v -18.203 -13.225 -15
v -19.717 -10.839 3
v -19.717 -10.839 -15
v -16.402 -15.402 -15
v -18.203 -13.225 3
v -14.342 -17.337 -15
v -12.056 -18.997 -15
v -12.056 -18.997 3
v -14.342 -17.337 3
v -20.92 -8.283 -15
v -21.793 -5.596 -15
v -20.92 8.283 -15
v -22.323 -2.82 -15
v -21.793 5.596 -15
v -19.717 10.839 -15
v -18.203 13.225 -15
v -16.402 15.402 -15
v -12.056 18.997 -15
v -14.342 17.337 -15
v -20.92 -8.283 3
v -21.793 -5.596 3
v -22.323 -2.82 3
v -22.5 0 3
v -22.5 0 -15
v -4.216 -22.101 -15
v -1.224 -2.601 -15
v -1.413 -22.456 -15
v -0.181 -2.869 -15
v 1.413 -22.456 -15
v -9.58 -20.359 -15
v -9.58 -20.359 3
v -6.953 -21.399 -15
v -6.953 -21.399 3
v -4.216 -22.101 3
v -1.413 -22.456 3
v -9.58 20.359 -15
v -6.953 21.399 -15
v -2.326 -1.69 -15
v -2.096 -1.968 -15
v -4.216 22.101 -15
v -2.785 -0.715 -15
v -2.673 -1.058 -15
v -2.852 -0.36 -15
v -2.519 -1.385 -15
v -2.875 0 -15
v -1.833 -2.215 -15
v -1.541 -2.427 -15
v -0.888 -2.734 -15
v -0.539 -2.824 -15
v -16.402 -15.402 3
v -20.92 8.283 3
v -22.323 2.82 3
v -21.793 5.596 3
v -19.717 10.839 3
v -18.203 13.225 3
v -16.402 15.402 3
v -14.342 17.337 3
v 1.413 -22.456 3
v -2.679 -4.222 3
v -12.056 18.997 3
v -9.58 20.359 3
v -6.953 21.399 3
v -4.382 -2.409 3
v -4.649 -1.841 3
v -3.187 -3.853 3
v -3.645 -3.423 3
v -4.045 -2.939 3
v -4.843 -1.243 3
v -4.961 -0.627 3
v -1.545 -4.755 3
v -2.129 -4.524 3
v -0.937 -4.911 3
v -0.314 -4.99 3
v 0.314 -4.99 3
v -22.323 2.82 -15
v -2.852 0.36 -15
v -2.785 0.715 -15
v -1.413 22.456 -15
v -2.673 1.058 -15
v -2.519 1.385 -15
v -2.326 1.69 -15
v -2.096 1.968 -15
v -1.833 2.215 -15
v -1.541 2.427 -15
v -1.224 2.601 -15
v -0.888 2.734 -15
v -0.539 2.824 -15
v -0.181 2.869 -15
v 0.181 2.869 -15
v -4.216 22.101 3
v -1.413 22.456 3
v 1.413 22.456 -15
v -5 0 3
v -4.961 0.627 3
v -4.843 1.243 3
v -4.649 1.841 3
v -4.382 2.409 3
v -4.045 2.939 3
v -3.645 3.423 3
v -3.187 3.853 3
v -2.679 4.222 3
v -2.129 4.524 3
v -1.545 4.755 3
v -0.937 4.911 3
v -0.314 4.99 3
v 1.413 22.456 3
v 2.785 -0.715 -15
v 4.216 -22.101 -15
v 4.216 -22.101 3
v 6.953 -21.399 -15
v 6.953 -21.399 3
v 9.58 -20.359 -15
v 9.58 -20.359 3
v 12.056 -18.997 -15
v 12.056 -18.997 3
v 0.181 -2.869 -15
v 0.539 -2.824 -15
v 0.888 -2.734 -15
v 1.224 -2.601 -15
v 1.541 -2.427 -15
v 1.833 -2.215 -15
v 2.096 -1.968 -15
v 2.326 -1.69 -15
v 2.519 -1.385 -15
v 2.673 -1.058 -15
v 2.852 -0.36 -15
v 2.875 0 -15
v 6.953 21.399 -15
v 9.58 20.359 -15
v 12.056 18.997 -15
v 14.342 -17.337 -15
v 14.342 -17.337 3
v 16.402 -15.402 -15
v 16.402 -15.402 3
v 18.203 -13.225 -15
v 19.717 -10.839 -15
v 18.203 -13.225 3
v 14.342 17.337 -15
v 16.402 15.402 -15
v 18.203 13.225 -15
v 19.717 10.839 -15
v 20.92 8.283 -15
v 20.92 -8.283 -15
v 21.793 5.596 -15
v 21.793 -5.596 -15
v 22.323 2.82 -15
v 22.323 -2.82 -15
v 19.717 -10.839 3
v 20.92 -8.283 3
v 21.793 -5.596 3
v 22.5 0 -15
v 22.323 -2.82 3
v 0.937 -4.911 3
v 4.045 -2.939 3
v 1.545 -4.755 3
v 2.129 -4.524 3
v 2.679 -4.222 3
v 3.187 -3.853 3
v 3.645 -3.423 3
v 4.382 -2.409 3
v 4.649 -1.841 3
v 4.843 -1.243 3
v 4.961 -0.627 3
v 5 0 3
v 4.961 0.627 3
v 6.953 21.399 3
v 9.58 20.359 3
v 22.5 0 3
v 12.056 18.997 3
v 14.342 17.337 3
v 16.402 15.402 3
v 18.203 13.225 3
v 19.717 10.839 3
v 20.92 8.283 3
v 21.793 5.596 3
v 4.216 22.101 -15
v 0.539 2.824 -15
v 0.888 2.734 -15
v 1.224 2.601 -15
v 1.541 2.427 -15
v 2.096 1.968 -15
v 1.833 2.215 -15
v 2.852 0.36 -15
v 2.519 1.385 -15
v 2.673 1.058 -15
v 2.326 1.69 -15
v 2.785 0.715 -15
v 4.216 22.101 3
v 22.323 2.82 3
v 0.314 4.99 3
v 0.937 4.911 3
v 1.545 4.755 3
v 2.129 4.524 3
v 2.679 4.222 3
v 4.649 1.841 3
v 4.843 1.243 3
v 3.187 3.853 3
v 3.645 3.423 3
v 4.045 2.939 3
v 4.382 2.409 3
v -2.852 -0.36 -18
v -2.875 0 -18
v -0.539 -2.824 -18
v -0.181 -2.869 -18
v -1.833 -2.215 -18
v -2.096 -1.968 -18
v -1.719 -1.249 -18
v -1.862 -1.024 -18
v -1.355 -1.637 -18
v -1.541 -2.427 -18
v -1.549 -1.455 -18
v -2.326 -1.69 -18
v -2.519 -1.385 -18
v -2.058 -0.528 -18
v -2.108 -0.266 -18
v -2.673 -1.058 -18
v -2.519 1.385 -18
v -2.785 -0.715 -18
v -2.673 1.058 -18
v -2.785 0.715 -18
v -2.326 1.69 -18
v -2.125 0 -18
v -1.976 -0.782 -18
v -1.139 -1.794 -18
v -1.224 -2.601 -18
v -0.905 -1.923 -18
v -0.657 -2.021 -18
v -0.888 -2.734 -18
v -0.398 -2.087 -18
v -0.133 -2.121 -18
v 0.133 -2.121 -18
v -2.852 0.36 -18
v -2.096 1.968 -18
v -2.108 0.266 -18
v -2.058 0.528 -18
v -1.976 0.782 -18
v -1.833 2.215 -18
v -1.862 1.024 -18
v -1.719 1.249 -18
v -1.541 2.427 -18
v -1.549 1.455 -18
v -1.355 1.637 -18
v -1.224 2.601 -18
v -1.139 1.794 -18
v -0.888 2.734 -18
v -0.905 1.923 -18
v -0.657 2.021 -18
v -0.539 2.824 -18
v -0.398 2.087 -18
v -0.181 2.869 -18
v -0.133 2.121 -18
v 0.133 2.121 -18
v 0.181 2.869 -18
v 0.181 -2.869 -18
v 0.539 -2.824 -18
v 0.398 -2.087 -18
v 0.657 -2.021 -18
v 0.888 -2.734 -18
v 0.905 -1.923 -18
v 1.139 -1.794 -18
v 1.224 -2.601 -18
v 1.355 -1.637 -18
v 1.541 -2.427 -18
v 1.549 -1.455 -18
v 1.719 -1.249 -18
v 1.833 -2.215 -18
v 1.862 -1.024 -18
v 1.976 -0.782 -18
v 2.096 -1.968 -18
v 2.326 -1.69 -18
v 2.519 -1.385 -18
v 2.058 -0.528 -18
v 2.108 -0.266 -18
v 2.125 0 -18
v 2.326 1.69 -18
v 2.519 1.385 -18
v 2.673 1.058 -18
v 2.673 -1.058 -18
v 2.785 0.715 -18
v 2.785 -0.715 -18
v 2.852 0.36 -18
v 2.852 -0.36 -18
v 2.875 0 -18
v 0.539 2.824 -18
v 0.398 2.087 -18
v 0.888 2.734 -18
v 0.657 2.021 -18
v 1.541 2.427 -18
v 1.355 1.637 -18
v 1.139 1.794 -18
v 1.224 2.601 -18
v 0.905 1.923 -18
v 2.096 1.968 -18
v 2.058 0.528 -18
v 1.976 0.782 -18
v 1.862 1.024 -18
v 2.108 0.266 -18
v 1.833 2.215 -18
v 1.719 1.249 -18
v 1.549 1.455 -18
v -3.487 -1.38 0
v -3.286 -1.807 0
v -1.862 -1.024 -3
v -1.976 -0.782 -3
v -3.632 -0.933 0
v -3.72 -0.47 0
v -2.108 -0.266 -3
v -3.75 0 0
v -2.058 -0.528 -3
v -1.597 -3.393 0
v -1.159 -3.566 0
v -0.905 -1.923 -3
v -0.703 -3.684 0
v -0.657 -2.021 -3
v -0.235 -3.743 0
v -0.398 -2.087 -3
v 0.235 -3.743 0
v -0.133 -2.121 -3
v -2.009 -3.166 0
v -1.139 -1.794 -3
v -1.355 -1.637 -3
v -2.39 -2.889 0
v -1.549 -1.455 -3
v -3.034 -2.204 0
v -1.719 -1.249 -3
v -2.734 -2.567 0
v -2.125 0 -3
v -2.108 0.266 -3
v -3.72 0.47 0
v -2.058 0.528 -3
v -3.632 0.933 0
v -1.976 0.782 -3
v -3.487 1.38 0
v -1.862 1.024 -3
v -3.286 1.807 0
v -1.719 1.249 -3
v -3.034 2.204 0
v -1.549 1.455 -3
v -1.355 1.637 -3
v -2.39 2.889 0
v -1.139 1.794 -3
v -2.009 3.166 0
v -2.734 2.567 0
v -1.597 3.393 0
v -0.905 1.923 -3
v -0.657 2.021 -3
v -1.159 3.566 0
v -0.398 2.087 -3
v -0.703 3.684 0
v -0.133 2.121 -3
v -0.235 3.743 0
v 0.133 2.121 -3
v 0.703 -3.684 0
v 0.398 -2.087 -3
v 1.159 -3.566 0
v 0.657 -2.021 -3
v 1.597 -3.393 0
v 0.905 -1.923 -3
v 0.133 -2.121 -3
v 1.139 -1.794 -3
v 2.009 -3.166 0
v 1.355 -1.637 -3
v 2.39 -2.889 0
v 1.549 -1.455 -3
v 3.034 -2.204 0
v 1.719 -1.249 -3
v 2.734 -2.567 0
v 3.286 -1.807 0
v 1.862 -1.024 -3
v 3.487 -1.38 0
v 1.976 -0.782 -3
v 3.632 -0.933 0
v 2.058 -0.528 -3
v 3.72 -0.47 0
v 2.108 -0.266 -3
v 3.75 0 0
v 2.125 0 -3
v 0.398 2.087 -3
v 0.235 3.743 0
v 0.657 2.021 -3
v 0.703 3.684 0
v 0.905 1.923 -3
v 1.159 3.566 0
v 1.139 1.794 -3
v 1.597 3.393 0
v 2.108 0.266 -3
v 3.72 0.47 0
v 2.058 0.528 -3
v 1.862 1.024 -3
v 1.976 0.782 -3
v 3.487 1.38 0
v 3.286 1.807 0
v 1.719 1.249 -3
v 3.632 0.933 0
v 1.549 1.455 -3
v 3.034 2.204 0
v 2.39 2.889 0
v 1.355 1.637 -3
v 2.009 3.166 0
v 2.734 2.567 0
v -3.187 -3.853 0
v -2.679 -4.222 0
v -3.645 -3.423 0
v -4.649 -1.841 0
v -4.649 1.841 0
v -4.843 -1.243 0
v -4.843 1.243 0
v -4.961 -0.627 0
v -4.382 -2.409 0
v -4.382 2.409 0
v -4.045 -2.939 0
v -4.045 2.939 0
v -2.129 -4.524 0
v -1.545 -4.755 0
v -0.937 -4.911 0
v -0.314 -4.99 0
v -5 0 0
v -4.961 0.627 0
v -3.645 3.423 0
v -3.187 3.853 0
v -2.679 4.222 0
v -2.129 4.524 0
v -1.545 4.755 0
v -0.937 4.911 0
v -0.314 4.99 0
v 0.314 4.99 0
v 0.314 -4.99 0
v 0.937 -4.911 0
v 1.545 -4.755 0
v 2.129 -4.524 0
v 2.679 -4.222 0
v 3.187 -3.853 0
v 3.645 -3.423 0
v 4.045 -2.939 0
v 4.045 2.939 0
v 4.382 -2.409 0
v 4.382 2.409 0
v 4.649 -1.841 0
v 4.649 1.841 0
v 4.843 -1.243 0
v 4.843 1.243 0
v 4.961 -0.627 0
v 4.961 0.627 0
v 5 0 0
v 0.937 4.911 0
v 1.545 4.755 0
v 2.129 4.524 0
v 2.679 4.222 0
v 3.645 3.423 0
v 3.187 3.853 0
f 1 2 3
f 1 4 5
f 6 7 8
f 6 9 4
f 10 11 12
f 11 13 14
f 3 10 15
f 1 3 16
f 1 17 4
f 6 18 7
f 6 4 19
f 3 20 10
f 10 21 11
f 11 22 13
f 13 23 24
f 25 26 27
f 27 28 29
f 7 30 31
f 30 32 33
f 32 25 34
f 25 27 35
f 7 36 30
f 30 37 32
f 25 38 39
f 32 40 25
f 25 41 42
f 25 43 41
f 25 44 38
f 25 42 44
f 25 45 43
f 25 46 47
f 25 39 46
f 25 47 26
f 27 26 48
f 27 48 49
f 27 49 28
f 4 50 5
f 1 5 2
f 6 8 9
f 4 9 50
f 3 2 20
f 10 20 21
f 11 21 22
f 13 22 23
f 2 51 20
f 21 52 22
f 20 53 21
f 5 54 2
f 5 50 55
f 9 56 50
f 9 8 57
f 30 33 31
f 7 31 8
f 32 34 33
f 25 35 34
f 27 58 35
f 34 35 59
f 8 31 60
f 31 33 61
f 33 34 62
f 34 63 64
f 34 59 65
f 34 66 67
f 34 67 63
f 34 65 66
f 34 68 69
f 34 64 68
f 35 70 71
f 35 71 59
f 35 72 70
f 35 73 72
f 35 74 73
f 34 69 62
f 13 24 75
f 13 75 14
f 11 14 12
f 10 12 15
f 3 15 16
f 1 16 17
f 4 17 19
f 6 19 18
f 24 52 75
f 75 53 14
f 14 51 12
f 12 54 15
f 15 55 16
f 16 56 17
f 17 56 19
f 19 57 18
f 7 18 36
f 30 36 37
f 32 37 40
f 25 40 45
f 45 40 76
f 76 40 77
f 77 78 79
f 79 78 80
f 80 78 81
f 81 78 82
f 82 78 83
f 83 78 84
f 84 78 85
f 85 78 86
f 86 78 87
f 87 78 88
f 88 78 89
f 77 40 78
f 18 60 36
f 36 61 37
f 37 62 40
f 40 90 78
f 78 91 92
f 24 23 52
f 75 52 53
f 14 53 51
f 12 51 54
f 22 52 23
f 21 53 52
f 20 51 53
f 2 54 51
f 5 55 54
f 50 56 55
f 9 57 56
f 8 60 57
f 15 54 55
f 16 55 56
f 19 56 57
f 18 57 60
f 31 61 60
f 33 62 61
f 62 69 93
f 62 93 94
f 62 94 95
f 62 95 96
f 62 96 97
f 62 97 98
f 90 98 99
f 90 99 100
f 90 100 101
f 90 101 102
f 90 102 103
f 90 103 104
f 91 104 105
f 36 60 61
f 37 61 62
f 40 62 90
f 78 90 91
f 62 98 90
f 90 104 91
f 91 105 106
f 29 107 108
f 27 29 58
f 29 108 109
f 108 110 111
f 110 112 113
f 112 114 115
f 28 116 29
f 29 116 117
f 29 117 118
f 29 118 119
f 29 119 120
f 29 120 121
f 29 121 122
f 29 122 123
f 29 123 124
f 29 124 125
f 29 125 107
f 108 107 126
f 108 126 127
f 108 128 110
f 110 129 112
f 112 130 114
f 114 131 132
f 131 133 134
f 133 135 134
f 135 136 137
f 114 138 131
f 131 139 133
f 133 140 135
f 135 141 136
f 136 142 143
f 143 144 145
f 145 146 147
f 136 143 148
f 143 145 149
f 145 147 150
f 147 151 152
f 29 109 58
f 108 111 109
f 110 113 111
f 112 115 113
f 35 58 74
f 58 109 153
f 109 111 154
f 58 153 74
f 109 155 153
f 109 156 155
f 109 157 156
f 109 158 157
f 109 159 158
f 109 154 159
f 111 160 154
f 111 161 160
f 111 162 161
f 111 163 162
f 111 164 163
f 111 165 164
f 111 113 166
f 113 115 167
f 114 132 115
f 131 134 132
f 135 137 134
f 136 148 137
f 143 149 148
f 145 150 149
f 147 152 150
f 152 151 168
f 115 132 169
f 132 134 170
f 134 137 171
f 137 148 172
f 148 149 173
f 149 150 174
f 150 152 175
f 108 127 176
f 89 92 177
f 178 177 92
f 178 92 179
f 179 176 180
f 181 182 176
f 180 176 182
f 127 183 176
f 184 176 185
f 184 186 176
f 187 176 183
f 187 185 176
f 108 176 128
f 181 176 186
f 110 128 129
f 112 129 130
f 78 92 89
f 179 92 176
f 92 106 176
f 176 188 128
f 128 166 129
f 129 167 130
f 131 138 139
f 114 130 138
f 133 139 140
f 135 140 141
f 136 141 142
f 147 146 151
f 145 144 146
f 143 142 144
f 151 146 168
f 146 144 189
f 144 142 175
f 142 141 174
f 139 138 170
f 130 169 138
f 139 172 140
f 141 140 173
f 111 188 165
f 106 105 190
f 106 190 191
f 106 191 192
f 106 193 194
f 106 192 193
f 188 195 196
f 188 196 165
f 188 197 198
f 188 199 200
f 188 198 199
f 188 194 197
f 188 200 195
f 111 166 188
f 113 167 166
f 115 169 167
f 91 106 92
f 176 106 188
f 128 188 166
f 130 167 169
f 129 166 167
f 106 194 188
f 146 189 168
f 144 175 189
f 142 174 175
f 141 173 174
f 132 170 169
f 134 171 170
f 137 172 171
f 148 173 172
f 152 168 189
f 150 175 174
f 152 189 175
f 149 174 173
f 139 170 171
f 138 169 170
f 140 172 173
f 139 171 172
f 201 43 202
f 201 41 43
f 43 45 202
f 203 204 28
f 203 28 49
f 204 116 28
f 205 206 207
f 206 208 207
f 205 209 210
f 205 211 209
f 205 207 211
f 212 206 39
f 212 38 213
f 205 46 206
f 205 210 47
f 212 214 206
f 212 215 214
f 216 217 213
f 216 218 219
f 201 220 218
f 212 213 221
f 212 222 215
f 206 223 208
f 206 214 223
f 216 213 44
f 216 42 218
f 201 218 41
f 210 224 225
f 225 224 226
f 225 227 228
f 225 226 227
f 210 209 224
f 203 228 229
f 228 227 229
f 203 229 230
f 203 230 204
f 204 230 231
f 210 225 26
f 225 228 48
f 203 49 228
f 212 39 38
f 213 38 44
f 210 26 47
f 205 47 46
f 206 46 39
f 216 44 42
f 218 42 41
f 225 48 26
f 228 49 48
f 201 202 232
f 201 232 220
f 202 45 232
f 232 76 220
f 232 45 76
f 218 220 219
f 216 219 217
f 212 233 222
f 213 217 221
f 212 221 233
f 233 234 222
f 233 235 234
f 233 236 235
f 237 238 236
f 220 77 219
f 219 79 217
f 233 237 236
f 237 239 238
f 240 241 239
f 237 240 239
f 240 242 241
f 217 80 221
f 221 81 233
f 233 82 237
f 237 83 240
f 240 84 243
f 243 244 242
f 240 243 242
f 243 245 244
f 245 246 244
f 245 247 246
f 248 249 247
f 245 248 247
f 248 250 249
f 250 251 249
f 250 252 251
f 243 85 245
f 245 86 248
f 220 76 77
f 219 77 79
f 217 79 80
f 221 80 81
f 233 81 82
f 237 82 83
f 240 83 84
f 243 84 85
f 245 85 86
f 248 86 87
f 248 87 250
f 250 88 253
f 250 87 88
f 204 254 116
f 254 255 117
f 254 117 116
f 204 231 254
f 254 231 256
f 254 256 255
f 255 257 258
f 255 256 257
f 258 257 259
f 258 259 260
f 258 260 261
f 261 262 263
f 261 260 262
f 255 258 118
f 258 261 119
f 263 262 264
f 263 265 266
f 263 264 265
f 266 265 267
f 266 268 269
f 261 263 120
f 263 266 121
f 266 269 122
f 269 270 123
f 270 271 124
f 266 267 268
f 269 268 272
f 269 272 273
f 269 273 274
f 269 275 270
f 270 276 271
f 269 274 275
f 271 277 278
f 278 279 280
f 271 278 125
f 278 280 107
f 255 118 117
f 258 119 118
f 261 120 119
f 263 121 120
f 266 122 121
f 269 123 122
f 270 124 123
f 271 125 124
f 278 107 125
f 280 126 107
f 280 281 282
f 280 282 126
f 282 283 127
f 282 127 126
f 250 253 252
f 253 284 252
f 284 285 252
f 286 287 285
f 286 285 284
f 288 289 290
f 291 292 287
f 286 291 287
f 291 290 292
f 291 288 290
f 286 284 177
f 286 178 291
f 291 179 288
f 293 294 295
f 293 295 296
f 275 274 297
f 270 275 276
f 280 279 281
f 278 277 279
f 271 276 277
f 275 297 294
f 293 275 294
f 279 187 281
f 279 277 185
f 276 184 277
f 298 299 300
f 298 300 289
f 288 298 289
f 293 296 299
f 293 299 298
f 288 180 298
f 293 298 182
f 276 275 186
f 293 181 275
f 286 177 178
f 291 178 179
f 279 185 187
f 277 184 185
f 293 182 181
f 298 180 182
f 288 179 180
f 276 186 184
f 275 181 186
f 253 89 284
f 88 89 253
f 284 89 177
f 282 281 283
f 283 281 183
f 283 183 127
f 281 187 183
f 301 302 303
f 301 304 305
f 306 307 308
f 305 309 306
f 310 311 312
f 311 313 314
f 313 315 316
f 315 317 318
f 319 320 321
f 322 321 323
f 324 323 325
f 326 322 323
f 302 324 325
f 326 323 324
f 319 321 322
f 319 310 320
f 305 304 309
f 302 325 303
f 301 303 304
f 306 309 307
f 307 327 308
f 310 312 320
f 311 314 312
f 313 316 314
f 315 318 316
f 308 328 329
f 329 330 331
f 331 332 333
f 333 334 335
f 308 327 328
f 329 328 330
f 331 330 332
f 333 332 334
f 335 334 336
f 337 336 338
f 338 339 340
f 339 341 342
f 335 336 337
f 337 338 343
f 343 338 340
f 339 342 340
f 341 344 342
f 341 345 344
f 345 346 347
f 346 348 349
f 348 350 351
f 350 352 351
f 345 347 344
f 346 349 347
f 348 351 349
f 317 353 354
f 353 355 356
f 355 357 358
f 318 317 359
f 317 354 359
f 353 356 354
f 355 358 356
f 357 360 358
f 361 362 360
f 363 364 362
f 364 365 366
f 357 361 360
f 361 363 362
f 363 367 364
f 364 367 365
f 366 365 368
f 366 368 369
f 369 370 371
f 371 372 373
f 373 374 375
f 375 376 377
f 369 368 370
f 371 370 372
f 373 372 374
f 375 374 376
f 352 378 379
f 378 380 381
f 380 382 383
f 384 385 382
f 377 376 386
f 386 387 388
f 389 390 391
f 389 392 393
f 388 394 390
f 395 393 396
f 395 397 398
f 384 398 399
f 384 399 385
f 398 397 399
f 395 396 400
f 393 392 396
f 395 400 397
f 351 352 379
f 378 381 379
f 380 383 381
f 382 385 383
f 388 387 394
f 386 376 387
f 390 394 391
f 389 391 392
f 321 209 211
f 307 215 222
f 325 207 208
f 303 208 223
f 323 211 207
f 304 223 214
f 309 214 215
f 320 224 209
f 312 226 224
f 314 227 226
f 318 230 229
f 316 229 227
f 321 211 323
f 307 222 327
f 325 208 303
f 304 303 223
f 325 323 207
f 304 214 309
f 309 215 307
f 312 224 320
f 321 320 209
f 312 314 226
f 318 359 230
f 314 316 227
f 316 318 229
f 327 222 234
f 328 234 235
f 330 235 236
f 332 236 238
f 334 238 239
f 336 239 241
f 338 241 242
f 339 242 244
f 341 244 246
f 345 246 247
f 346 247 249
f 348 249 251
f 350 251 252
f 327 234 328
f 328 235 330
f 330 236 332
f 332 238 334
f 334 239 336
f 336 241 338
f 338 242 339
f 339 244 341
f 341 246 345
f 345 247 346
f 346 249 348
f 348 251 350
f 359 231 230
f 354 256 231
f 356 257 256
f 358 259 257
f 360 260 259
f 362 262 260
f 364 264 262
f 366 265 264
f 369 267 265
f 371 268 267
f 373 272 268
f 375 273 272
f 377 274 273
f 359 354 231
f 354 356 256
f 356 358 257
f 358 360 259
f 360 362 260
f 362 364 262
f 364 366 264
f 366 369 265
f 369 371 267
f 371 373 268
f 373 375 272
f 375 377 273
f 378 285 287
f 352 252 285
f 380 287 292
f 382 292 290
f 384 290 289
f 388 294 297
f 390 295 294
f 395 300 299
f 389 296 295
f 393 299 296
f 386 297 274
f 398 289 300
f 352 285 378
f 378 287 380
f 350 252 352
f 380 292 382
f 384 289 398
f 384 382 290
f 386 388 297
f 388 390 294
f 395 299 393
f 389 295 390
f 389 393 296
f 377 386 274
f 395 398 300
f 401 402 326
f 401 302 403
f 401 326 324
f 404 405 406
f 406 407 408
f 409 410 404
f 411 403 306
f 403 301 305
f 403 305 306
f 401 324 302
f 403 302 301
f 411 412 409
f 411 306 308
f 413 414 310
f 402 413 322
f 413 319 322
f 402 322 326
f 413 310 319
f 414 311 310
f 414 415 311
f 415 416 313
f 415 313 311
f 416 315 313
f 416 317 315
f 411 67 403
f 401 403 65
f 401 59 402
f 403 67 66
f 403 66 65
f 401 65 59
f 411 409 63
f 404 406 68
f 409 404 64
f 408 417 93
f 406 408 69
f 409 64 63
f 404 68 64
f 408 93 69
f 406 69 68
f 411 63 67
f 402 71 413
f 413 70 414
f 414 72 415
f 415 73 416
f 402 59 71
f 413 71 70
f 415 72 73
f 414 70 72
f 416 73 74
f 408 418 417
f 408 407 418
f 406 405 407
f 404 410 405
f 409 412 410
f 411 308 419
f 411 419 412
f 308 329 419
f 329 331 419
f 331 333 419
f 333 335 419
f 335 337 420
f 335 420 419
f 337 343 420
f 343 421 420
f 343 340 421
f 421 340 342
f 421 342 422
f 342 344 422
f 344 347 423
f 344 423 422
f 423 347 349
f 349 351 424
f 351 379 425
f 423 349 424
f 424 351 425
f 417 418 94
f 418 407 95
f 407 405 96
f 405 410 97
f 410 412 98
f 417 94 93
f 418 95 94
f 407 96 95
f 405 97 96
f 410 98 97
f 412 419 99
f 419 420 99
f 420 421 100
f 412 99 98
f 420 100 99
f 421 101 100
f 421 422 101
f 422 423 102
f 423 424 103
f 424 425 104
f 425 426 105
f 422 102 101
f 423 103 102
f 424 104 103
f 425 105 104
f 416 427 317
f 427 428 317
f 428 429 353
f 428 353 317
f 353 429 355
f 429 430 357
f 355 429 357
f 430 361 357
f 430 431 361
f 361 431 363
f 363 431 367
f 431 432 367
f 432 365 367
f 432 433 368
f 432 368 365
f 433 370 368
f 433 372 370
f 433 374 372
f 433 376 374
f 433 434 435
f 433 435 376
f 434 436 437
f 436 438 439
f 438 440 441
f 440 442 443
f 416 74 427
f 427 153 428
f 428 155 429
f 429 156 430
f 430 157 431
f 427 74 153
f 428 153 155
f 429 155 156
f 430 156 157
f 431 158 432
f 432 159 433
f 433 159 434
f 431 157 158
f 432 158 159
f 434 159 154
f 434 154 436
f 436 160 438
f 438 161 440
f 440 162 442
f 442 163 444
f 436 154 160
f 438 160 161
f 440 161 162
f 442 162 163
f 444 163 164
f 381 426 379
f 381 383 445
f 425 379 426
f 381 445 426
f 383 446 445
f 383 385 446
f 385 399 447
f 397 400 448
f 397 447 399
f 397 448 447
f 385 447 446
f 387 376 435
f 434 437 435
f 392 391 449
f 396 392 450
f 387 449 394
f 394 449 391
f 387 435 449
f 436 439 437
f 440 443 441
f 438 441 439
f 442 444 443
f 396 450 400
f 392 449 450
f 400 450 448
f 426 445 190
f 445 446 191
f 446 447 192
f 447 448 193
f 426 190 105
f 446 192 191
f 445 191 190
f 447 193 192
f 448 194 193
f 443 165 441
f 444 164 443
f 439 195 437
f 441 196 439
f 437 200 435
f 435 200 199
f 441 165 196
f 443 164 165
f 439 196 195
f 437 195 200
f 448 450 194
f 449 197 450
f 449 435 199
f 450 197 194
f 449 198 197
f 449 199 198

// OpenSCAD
$fn = 50;

difference() {
	union() {
		translate(v = [0, 0, -15.0]) {
			cylinder(h = 18, r = 22.5);
		}
		#translate(v = [0, 0, -18.0]) {
			cylinder(h = 18, r = 2.875);
		}
	}
	union() {
		translate(v = [0, 0, 0]) {
			rotate(a = [0, 0, 0]) {
				difference() {
					union() {
						translate(v = [0, 0, -18.0]) {
							cylinder(h = 18, r = 2.0);
						}
						translate(v = [0, 0, -3]) {
							cylinder(h = 3, r1 = 2.125, r2 = 3.75);
						}
						translate(v = [0, 0, -18.0]) {
							cylinder(h = 18, r = 2.125);
						}
						translate(v = [0, 0, -18.0]) {
							cylinder(h = 18, r = 2.0);
						}
					}
					union();
				}
			}
		}
		#cylinder(h = 3, r = 5.0);
	}
}
